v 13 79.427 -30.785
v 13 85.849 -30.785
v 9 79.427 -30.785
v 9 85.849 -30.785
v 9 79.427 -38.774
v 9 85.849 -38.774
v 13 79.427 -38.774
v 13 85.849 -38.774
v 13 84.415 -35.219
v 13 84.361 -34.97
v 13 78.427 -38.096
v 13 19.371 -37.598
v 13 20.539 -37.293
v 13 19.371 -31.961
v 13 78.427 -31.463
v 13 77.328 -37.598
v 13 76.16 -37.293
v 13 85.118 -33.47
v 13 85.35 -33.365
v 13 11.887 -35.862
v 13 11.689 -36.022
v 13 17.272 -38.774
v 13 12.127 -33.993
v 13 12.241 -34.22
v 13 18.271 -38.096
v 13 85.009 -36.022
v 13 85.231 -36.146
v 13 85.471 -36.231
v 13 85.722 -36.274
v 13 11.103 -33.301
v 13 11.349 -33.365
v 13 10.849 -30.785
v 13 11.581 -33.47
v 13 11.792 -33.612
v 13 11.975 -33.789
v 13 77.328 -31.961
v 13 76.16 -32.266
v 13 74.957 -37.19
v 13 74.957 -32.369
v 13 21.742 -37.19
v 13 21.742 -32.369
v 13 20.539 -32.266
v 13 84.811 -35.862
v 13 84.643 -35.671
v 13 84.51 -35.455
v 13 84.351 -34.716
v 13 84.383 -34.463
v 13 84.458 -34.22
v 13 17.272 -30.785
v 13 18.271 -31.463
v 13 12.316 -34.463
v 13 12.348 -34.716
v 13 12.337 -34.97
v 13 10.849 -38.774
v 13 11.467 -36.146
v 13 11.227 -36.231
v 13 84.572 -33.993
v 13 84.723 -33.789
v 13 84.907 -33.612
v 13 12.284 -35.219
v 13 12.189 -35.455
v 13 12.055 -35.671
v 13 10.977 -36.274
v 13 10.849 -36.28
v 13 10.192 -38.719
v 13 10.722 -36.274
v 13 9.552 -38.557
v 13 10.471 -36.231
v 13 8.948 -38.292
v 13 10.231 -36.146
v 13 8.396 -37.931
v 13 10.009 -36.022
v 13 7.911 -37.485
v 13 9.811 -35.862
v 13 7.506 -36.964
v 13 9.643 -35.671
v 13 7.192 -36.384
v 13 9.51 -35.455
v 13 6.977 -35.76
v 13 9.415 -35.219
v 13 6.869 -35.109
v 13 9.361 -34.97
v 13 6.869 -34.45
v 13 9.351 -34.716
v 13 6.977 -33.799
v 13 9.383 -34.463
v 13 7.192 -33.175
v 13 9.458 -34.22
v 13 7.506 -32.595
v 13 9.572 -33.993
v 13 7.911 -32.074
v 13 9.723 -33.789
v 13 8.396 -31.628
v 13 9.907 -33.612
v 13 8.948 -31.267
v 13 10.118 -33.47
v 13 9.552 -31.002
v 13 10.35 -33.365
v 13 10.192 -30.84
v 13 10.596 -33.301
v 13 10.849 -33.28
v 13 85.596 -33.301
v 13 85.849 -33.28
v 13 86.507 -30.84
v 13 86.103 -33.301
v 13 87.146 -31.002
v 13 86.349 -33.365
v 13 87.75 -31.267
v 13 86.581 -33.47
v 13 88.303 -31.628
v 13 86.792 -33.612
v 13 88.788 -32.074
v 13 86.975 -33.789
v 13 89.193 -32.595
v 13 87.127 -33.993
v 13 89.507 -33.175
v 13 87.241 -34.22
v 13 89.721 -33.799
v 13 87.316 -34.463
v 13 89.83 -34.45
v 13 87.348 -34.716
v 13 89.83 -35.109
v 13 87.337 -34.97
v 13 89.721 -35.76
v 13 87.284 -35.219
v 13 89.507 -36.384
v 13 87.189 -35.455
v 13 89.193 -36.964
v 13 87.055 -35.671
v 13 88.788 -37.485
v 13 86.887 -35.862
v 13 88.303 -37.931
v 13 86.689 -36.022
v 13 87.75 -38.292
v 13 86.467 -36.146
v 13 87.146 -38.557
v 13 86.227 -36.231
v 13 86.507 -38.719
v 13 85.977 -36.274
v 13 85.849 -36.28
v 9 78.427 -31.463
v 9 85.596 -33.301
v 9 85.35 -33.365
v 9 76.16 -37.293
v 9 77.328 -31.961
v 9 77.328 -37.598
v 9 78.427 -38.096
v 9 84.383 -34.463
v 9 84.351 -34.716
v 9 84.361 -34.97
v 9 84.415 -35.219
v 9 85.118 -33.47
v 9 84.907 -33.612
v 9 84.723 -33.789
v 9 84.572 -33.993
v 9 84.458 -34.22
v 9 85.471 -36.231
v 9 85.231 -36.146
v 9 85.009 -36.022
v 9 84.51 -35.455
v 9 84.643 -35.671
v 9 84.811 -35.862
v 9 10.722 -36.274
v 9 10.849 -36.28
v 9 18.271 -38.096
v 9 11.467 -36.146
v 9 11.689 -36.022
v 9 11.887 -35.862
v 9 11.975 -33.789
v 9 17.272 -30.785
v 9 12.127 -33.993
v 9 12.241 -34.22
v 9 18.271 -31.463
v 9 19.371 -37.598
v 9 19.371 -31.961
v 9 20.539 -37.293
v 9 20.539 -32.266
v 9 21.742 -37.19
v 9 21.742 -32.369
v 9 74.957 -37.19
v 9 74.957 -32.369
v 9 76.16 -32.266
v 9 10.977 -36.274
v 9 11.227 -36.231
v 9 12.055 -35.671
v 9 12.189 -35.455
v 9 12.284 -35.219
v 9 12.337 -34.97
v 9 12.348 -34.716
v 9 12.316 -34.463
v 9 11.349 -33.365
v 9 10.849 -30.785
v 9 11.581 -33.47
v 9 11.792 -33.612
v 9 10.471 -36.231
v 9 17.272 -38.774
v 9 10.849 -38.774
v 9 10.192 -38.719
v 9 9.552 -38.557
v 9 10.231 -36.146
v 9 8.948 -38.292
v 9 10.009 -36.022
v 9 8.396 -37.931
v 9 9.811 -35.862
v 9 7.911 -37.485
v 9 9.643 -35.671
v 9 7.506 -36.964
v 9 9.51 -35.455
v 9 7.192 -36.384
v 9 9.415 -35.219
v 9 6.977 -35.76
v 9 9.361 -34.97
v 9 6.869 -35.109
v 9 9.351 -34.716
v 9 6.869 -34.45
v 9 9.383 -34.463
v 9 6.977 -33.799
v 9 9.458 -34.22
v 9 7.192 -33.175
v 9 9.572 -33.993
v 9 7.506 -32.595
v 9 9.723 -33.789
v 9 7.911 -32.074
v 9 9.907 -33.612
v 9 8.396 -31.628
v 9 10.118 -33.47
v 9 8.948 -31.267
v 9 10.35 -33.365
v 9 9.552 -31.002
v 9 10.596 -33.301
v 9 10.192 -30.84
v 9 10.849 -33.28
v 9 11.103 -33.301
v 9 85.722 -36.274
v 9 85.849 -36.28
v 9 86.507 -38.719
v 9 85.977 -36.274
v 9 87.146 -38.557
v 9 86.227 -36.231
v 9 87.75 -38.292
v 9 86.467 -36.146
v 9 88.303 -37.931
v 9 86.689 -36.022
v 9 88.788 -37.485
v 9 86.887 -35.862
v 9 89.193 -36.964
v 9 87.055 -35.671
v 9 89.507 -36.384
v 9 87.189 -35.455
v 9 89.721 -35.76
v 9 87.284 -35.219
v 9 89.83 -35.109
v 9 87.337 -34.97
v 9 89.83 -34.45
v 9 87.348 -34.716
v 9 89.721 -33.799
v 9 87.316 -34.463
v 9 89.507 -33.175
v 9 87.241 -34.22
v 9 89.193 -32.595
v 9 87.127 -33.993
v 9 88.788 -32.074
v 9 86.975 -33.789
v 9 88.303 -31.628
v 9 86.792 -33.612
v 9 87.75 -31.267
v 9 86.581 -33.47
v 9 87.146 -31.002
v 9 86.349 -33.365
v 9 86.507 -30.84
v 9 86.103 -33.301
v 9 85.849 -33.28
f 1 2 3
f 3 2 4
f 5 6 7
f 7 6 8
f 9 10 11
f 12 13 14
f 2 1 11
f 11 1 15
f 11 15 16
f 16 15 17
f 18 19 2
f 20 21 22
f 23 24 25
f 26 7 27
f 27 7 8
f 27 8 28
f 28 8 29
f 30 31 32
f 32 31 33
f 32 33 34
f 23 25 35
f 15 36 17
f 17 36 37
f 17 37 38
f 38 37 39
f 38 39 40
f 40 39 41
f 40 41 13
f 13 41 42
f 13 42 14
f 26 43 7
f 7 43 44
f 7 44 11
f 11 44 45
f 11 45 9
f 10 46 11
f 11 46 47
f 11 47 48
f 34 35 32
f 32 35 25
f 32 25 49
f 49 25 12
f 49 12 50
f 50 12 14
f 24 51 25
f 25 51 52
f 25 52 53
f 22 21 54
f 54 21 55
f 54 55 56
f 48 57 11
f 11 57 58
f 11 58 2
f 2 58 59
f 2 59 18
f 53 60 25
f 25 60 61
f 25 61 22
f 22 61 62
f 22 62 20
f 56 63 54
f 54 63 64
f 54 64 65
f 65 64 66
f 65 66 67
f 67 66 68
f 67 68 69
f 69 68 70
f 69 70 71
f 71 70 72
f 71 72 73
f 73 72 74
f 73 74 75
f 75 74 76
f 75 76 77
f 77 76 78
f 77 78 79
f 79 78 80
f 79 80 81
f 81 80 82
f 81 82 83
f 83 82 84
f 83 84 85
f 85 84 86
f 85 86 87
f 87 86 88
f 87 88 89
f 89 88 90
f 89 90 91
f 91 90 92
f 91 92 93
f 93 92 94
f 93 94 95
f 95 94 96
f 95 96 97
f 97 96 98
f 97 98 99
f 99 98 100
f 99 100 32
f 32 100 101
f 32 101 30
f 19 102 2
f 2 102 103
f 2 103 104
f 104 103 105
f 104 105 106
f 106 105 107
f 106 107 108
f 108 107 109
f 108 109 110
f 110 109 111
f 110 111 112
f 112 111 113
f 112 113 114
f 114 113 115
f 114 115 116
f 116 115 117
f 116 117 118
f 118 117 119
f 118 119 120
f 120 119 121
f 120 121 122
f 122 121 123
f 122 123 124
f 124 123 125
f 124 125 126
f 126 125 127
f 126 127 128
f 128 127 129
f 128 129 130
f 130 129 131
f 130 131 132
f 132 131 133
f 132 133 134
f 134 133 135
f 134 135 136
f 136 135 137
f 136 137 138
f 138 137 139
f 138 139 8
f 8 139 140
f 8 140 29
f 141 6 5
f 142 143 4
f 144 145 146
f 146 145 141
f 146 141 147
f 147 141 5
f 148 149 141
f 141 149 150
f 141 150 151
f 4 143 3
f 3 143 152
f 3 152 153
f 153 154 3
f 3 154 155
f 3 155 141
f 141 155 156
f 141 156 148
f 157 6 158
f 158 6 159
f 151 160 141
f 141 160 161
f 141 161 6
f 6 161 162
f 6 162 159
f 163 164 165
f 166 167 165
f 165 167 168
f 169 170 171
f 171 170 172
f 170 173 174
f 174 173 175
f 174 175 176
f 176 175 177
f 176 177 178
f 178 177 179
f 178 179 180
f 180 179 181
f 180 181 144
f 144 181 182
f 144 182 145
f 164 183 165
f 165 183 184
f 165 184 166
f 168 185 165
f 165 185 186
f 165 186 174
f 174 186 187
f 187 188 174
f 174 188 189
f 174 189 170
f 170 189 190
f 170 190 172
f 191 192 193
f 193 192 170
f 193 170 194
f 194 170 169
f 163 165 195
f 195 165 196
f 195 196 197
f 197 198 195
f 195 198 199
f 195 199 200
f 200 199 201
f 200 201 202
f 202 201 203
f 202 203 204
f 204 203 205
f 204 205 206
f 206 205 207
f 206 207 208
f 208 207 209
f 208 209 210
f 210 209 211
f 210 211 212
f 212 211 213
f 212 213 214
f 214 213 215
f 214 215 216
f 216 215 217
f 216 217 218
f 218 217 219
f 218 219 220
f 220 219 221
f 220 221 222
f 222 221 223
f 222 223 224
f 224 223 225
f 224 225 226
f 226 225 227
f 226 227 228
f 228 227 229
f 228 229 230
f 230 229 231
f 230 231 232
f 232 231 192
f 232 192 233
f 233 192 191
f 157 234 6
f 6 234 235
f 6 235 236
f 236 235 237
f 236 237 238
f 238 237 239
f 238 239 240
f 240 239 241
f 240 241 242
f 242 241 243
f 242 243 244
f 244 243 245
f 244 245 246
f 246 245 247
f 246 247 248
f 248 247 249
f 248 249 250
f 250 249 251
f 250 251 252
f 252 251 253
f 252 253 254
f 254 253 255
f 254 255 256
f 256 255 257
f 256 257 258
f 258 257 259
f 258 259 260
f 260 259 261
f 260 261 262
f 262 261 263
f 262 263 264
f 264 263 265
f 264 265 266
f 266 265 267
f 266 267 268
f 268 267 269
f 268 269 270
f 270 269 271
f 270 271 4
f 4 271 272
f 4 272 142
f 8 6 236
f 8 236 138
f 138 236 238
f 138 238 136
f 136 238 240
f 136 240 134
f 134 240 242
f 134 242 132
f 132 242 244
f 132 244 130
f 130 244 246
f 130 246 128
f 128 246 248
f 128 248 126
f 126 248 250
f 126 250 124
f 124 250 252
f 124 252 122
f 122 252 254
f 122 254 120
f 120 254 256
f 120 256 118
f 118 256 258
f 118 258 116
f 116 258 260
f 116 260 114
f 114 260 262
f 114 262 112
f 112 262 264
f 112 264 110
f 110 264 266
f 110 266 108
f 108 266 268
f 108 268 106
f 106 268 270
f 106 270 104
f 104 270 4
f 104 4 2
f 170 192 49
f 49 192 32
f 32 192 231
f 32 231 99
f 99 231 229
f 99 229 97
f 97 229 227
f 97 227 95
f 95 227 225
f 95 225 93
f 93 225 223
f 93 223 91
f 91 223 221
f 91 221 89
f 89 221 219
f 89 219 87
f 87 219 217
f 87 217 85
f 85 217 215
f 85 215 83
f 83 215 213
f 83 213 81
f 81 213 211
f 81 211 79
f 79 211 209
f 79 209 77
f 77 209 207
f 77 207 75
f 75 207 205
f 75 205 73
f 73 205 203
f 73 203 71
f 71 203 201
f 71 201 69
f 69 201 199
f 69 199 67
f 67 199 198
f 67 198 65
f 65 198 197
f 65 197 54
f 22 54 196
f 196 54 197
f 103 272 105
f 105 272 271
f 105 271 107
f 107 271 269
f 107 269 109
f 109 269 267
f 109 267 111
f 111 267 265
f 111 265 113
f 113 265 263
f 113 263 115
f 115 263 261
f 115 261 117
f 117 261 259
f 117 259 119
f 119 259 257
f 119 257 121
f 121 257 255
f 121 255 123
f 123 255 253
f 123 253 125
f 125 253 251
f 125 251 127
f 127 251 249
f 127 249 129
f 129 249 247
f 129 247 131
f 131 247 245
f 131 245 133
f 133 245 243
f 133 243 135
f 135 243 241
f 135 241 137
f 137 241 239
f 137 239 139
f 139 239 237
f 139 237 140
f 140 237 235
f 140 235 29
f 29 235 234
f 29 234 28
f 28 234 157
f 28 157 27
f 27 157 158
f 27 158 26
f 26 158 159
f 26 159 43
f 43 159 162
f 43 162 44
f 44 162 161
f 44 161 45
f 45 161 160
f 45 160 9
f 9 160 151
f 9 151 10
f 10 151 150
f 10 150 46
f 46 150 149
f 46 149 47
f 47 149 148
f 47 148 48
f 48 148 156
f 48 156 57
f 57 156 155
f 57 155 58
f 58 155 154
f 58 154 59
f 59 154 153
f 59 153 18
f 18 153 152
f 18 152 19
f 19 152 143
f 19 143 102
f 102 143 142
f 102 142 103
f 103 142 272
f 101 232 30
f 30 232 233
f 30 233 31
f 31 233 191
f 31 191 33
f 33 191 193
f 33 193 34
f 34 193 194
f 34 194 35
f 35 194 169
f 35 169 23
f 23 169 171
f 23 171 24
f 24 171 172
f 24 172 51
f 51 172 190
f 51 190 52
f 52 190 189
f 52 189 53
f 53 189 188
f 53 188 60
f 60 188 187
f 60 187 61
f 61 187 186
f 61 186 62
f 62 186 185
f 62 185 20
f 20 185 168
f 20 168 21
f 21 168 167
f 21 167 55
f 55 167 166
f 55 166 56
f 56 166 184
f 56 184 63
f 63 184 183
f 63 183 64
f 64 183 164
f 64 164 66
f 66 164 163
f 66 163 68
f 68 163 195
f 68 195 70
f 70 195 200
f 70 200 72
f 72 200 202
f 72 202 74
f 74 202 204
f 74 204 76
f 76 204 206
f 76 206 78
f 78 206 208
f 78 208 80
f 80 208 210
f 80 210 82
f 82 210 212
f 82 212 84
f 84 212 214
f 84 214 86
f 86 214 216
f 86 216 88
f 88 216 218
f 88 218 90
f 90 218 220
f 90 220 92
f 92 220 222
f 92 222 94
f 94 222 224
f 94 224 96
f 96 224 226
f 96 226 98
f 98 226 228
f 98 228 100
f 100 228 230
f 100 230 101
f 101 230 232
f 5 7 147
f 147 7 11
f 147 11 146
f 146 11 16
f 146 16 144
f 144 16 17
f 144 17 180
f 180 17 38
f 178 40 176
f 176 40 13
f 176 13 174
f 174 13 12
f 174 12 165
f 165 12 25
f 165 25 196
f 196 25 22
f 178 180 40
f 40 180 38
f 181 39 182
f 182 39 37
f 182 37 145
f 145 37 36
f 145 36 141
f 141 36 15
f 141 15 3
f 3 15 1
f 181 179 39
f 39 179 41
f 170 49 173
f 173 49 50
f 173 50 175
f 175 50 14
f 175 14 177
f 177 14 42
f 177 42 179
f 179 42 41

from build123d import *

# Parameters (mm, degrees)
SKETCH1_R               = 10
SKETCH1_R_2             = 0.8
SKETCH1_R_3             = 3.301767793
BOSS_EXTRUDE1_DEPTH     = 1.5
SKETCH2_R               = 10
BOSS_EXTRUDE2_DEPTH     = 9
SKETCH3_R               = 1.5
CUT_EXTRUDE1_DEPTH      = 1
CUT_EXTRUDE1_DEPTH_BACK = 10
FILLET1_R               = 5
SKETCH4_R               = 1.5
BOSS_EXTRUDE3_DEPTH     = 4
SKETCH5_W               = 43.786924739
SKETCH5_H               = 105.486682325
CUT_EXTRUDE2_DEPTH      = 5
CUT_EXTRUDE2_DEPTH_BACK = 10.0000001
CUT_EXTRUDE3_DEPTH      = 1
CUT_EXTRUDE3_DEPTH_BACK = 5


with BuildPart() as part:
    # Sketch1 → Boss-Extrude1 (new body)
    with BuildSketch(Plane(origin=(0, 0, 0), x_dir=(0, 0, -1), z_dir=(1, 0, 0))):
        with Locations((2.983378847, 10.826778074)):
            Circle(SKETCH1_R)
        with Locations((2.983378847, 18.576778074)):
            Circle(SKETCH1_R_2, mode=Mode.SUBTRACT)
        with Locations((2.983378847, 3.076778074)):
            Circle(SKETCH1_R_2, mode=Mode.SUBTRACT)
        with Locations((-3.266621153, 10.826778074)):
            Circle(SKETCH1_R_2, mode=Mode.SUBTRACT)
        with Locations((9.233378847, 10.826778074)):
            Circle(SKETCH1_R_2, mode=Mode.SUBTRACT)
        with Locations((2.983378847, 10.826778074)):
            Circle(SKETCH1_R_3, mode=Mode.SUBTRACT)
    extrude(amount=BOSS_EXTRUDE1_DEPTH)

    # Sketch2 → Boss-Extrude2 (add)
    with BuildSketch(Plane.ZY):
        with BuildLine():
            Line((-15.531923741, 95.891603494), (9.565166047, 95.891603494))
            Line((9.565166047, 95.891603494), (9.565166047, 10.826778074))
            ThreePointArc((9.565166047, 10.826778074), (-2.983378847, -1.721766821), (-15.531923741, 10.826778074))
            Line((-15.531923741, 10.826778074), (-15.531923741, 95.891603494))
        make_face()
        with Locations((-2.983378847, 10.826778074)):
            Circle(SKETCH2_R, mode=Mode.SUBTRACT)
    extrude(amount=-BOSS_EXTRUDE2_DEPTH)

    # Sketch3 → Cut-Extrude1 (cut, two sides)
    with BuildSketch(Plane(origin=(9, 0, 0), x_dir=(0, 0, -1), z_dir=(1, 0, 0))) as cut_extrude1_sk:
        with Locations((2.983378847, 90.473665847)):
            Circle(SKETCH3_R)
        with BuildLine():
            Line((-3.051129507, 36.150412664), (-3.051129507, 97.572569437))
            Line((-3.051129507, 97.572569437), (-16.389018159, 97.572569437))
            Line((-16.389018159, 97.572569437), (-16.389018159, 8.14109285))
            Line((-16.389018159, 8.14109285), (-9.565166047, 10.826778074))
            add(Edge.make_bspline(
                [(-9.565166047, 10.826778074), (-9.644230884, 15.122204253), (-6.916245701, 23.507010268), (-3.42826878, 31.561714956), (-3.051129507, 36.150412664)],
                knots=[0, 0, 0, 0, 0.482384809, 1, 1, 1, 1], degree=3))
        make_face()
        with BuildLine():
            Line((22.355775853, 8.14109285), (15.531923741, 10.826778074))
            add(Edge.make_bspline(
                [(15.531923741, 10.826778074), (15.610988578, 15.122204253), (12.883003395, 23.507010268), (9.395026474, 31.561714956), (9.017887201, 36.150412664)],
                knots=[0, 0, 0, 0, 0.482384809, 1, 1, 1, 1], degree=3))
            Line((9.017887201, 36.150412664), (9.017887201, 97.572569437))
            Line((9.017887201, 97.572569437), (22.355775853, 97.572569437))
            Line((22.355775853, 97.572569437), (22.355775853, 8.14109285))
        make_face()
    extrude(amount=CUT_EXTRUDE1_DEPTH, mode=Mode.SUBTRACT)
    extrude(cut_extrude1_sk.sketch, amount=-CUT_EXTRUDE1_DEPTH_BACK, mode=Mode.SUBTRACT)

    # Fillet1
    fillet1_edges = [part.edges().sort_by_distance(p)[0] for p in [
        (4.5, 95.891603494, 3.051129507),
        (4.5, 95.891603494, -9.017887201),
    ]]
    fillet(fillet1_edges, radius=FILLET1_R)

    # Sketch5 → Cut-Extrude2 (cut, two sides)
    with BuildSketch(Plane(origin=(9, 0, 0), x_dir=(0, 0, -1), z_dir=(1, 0, 0))) as cut_extrude2_sk:
        with Locations((-1.981744939, 44.563852974)):
            Rectangle(SKETCH5_W, SKETCH5_H)
    extrude(amount=CUT_EXTRUDE2_DEPTH, mode=Mode.SUBTRACT)
    extrude(cut_extrude2_sk.sketch, amount=-CUT_EXTRUDE2_DEPTH_BACK, mode=Mode.SUBTRACT)


with BuildPart() as body_2:
    # Sketch4 → Boss-Extrude3 (new body)
    with BuildSketch(Plane(origin=(9, 0, 0), x_dir=(0, 0, -1), z_dir=(1, 0, 0))):
        with BuildLine():
            Line((38.773588851, 85.849332764), (38.773588851, 10.849332764))
            ThreePointArc((38.773588851, 10.849332764), (34.779514456, 6.855258369), (30.785440062, 10.849332764))
            Line((30.785440062, 10.849332764), (30.785440062, 85.849332764))
            ThreePointArc((30.785440062, 85.849332764), (34.779514456, 89.843407159), (38.773588851, 85.849332764))
        make_face()
        with Locations((34.779514456, 85.849332764)):
            Circle(SKETCH4_R, mode=Mode.SUBTRACT)
        with Locations((34.779514456, 10.849332764)):
            Circle(SKETCH4_R, mode=Mode.SUBTRACT)
    extrude(amount=BOSS_EXTRUDE3_DEPTH)

    # Sketch6 → Cut-Extrude3 (cut, two sides)
    with BuildSketch(Plane(origin=(13, 0, 0), x_dir=(0, 0, -1), z_dir=(1, 0, 0))) as cut_extrude3_sk:
        with BuildLine():
            Line((32.368772821, 74.957140703), (32.368772821, 21.741524825))
            ThreePointArc((32.368772821, 21.741524825), (25.269119008, 14.641871012), (18.169465194, 21.741524825))
            Line((18.169465194, 21.741524825), (18.169465194, 74.957140703))
            ThreePointArc((18.169465194, 74.957140703), (25.269119008, 82.056794517), (32.368772821, 74.957140703))
        make_face()
        with BuildLine():
            Line((37.190256091, 74.957140703), (37.190256091, 21.741524825))
            ThreePointArc((37.190256091, 21.741524825), (44.289909905, 14.641871012), (51.389563719, 21.741524825))
            Line((51.389563719, 21.741524825), (51.389563719, 74.957140703))
            ThreePointArc((51.389563719, 74.957140703), (44.289909905, 82.056794517), (37.190256091, 74.957140703))
        make_face()
    extrude(amount=CUT_EXTRUDE3_DEPTH, mode=Mode.SUBTRACT)
    extrude(cut_extrude3_sk.sketch, amount=-CUT_EXTRUDE3_DEPTH_BACK, mode=Mode.SUBTRACT)


solid = body_2.part
